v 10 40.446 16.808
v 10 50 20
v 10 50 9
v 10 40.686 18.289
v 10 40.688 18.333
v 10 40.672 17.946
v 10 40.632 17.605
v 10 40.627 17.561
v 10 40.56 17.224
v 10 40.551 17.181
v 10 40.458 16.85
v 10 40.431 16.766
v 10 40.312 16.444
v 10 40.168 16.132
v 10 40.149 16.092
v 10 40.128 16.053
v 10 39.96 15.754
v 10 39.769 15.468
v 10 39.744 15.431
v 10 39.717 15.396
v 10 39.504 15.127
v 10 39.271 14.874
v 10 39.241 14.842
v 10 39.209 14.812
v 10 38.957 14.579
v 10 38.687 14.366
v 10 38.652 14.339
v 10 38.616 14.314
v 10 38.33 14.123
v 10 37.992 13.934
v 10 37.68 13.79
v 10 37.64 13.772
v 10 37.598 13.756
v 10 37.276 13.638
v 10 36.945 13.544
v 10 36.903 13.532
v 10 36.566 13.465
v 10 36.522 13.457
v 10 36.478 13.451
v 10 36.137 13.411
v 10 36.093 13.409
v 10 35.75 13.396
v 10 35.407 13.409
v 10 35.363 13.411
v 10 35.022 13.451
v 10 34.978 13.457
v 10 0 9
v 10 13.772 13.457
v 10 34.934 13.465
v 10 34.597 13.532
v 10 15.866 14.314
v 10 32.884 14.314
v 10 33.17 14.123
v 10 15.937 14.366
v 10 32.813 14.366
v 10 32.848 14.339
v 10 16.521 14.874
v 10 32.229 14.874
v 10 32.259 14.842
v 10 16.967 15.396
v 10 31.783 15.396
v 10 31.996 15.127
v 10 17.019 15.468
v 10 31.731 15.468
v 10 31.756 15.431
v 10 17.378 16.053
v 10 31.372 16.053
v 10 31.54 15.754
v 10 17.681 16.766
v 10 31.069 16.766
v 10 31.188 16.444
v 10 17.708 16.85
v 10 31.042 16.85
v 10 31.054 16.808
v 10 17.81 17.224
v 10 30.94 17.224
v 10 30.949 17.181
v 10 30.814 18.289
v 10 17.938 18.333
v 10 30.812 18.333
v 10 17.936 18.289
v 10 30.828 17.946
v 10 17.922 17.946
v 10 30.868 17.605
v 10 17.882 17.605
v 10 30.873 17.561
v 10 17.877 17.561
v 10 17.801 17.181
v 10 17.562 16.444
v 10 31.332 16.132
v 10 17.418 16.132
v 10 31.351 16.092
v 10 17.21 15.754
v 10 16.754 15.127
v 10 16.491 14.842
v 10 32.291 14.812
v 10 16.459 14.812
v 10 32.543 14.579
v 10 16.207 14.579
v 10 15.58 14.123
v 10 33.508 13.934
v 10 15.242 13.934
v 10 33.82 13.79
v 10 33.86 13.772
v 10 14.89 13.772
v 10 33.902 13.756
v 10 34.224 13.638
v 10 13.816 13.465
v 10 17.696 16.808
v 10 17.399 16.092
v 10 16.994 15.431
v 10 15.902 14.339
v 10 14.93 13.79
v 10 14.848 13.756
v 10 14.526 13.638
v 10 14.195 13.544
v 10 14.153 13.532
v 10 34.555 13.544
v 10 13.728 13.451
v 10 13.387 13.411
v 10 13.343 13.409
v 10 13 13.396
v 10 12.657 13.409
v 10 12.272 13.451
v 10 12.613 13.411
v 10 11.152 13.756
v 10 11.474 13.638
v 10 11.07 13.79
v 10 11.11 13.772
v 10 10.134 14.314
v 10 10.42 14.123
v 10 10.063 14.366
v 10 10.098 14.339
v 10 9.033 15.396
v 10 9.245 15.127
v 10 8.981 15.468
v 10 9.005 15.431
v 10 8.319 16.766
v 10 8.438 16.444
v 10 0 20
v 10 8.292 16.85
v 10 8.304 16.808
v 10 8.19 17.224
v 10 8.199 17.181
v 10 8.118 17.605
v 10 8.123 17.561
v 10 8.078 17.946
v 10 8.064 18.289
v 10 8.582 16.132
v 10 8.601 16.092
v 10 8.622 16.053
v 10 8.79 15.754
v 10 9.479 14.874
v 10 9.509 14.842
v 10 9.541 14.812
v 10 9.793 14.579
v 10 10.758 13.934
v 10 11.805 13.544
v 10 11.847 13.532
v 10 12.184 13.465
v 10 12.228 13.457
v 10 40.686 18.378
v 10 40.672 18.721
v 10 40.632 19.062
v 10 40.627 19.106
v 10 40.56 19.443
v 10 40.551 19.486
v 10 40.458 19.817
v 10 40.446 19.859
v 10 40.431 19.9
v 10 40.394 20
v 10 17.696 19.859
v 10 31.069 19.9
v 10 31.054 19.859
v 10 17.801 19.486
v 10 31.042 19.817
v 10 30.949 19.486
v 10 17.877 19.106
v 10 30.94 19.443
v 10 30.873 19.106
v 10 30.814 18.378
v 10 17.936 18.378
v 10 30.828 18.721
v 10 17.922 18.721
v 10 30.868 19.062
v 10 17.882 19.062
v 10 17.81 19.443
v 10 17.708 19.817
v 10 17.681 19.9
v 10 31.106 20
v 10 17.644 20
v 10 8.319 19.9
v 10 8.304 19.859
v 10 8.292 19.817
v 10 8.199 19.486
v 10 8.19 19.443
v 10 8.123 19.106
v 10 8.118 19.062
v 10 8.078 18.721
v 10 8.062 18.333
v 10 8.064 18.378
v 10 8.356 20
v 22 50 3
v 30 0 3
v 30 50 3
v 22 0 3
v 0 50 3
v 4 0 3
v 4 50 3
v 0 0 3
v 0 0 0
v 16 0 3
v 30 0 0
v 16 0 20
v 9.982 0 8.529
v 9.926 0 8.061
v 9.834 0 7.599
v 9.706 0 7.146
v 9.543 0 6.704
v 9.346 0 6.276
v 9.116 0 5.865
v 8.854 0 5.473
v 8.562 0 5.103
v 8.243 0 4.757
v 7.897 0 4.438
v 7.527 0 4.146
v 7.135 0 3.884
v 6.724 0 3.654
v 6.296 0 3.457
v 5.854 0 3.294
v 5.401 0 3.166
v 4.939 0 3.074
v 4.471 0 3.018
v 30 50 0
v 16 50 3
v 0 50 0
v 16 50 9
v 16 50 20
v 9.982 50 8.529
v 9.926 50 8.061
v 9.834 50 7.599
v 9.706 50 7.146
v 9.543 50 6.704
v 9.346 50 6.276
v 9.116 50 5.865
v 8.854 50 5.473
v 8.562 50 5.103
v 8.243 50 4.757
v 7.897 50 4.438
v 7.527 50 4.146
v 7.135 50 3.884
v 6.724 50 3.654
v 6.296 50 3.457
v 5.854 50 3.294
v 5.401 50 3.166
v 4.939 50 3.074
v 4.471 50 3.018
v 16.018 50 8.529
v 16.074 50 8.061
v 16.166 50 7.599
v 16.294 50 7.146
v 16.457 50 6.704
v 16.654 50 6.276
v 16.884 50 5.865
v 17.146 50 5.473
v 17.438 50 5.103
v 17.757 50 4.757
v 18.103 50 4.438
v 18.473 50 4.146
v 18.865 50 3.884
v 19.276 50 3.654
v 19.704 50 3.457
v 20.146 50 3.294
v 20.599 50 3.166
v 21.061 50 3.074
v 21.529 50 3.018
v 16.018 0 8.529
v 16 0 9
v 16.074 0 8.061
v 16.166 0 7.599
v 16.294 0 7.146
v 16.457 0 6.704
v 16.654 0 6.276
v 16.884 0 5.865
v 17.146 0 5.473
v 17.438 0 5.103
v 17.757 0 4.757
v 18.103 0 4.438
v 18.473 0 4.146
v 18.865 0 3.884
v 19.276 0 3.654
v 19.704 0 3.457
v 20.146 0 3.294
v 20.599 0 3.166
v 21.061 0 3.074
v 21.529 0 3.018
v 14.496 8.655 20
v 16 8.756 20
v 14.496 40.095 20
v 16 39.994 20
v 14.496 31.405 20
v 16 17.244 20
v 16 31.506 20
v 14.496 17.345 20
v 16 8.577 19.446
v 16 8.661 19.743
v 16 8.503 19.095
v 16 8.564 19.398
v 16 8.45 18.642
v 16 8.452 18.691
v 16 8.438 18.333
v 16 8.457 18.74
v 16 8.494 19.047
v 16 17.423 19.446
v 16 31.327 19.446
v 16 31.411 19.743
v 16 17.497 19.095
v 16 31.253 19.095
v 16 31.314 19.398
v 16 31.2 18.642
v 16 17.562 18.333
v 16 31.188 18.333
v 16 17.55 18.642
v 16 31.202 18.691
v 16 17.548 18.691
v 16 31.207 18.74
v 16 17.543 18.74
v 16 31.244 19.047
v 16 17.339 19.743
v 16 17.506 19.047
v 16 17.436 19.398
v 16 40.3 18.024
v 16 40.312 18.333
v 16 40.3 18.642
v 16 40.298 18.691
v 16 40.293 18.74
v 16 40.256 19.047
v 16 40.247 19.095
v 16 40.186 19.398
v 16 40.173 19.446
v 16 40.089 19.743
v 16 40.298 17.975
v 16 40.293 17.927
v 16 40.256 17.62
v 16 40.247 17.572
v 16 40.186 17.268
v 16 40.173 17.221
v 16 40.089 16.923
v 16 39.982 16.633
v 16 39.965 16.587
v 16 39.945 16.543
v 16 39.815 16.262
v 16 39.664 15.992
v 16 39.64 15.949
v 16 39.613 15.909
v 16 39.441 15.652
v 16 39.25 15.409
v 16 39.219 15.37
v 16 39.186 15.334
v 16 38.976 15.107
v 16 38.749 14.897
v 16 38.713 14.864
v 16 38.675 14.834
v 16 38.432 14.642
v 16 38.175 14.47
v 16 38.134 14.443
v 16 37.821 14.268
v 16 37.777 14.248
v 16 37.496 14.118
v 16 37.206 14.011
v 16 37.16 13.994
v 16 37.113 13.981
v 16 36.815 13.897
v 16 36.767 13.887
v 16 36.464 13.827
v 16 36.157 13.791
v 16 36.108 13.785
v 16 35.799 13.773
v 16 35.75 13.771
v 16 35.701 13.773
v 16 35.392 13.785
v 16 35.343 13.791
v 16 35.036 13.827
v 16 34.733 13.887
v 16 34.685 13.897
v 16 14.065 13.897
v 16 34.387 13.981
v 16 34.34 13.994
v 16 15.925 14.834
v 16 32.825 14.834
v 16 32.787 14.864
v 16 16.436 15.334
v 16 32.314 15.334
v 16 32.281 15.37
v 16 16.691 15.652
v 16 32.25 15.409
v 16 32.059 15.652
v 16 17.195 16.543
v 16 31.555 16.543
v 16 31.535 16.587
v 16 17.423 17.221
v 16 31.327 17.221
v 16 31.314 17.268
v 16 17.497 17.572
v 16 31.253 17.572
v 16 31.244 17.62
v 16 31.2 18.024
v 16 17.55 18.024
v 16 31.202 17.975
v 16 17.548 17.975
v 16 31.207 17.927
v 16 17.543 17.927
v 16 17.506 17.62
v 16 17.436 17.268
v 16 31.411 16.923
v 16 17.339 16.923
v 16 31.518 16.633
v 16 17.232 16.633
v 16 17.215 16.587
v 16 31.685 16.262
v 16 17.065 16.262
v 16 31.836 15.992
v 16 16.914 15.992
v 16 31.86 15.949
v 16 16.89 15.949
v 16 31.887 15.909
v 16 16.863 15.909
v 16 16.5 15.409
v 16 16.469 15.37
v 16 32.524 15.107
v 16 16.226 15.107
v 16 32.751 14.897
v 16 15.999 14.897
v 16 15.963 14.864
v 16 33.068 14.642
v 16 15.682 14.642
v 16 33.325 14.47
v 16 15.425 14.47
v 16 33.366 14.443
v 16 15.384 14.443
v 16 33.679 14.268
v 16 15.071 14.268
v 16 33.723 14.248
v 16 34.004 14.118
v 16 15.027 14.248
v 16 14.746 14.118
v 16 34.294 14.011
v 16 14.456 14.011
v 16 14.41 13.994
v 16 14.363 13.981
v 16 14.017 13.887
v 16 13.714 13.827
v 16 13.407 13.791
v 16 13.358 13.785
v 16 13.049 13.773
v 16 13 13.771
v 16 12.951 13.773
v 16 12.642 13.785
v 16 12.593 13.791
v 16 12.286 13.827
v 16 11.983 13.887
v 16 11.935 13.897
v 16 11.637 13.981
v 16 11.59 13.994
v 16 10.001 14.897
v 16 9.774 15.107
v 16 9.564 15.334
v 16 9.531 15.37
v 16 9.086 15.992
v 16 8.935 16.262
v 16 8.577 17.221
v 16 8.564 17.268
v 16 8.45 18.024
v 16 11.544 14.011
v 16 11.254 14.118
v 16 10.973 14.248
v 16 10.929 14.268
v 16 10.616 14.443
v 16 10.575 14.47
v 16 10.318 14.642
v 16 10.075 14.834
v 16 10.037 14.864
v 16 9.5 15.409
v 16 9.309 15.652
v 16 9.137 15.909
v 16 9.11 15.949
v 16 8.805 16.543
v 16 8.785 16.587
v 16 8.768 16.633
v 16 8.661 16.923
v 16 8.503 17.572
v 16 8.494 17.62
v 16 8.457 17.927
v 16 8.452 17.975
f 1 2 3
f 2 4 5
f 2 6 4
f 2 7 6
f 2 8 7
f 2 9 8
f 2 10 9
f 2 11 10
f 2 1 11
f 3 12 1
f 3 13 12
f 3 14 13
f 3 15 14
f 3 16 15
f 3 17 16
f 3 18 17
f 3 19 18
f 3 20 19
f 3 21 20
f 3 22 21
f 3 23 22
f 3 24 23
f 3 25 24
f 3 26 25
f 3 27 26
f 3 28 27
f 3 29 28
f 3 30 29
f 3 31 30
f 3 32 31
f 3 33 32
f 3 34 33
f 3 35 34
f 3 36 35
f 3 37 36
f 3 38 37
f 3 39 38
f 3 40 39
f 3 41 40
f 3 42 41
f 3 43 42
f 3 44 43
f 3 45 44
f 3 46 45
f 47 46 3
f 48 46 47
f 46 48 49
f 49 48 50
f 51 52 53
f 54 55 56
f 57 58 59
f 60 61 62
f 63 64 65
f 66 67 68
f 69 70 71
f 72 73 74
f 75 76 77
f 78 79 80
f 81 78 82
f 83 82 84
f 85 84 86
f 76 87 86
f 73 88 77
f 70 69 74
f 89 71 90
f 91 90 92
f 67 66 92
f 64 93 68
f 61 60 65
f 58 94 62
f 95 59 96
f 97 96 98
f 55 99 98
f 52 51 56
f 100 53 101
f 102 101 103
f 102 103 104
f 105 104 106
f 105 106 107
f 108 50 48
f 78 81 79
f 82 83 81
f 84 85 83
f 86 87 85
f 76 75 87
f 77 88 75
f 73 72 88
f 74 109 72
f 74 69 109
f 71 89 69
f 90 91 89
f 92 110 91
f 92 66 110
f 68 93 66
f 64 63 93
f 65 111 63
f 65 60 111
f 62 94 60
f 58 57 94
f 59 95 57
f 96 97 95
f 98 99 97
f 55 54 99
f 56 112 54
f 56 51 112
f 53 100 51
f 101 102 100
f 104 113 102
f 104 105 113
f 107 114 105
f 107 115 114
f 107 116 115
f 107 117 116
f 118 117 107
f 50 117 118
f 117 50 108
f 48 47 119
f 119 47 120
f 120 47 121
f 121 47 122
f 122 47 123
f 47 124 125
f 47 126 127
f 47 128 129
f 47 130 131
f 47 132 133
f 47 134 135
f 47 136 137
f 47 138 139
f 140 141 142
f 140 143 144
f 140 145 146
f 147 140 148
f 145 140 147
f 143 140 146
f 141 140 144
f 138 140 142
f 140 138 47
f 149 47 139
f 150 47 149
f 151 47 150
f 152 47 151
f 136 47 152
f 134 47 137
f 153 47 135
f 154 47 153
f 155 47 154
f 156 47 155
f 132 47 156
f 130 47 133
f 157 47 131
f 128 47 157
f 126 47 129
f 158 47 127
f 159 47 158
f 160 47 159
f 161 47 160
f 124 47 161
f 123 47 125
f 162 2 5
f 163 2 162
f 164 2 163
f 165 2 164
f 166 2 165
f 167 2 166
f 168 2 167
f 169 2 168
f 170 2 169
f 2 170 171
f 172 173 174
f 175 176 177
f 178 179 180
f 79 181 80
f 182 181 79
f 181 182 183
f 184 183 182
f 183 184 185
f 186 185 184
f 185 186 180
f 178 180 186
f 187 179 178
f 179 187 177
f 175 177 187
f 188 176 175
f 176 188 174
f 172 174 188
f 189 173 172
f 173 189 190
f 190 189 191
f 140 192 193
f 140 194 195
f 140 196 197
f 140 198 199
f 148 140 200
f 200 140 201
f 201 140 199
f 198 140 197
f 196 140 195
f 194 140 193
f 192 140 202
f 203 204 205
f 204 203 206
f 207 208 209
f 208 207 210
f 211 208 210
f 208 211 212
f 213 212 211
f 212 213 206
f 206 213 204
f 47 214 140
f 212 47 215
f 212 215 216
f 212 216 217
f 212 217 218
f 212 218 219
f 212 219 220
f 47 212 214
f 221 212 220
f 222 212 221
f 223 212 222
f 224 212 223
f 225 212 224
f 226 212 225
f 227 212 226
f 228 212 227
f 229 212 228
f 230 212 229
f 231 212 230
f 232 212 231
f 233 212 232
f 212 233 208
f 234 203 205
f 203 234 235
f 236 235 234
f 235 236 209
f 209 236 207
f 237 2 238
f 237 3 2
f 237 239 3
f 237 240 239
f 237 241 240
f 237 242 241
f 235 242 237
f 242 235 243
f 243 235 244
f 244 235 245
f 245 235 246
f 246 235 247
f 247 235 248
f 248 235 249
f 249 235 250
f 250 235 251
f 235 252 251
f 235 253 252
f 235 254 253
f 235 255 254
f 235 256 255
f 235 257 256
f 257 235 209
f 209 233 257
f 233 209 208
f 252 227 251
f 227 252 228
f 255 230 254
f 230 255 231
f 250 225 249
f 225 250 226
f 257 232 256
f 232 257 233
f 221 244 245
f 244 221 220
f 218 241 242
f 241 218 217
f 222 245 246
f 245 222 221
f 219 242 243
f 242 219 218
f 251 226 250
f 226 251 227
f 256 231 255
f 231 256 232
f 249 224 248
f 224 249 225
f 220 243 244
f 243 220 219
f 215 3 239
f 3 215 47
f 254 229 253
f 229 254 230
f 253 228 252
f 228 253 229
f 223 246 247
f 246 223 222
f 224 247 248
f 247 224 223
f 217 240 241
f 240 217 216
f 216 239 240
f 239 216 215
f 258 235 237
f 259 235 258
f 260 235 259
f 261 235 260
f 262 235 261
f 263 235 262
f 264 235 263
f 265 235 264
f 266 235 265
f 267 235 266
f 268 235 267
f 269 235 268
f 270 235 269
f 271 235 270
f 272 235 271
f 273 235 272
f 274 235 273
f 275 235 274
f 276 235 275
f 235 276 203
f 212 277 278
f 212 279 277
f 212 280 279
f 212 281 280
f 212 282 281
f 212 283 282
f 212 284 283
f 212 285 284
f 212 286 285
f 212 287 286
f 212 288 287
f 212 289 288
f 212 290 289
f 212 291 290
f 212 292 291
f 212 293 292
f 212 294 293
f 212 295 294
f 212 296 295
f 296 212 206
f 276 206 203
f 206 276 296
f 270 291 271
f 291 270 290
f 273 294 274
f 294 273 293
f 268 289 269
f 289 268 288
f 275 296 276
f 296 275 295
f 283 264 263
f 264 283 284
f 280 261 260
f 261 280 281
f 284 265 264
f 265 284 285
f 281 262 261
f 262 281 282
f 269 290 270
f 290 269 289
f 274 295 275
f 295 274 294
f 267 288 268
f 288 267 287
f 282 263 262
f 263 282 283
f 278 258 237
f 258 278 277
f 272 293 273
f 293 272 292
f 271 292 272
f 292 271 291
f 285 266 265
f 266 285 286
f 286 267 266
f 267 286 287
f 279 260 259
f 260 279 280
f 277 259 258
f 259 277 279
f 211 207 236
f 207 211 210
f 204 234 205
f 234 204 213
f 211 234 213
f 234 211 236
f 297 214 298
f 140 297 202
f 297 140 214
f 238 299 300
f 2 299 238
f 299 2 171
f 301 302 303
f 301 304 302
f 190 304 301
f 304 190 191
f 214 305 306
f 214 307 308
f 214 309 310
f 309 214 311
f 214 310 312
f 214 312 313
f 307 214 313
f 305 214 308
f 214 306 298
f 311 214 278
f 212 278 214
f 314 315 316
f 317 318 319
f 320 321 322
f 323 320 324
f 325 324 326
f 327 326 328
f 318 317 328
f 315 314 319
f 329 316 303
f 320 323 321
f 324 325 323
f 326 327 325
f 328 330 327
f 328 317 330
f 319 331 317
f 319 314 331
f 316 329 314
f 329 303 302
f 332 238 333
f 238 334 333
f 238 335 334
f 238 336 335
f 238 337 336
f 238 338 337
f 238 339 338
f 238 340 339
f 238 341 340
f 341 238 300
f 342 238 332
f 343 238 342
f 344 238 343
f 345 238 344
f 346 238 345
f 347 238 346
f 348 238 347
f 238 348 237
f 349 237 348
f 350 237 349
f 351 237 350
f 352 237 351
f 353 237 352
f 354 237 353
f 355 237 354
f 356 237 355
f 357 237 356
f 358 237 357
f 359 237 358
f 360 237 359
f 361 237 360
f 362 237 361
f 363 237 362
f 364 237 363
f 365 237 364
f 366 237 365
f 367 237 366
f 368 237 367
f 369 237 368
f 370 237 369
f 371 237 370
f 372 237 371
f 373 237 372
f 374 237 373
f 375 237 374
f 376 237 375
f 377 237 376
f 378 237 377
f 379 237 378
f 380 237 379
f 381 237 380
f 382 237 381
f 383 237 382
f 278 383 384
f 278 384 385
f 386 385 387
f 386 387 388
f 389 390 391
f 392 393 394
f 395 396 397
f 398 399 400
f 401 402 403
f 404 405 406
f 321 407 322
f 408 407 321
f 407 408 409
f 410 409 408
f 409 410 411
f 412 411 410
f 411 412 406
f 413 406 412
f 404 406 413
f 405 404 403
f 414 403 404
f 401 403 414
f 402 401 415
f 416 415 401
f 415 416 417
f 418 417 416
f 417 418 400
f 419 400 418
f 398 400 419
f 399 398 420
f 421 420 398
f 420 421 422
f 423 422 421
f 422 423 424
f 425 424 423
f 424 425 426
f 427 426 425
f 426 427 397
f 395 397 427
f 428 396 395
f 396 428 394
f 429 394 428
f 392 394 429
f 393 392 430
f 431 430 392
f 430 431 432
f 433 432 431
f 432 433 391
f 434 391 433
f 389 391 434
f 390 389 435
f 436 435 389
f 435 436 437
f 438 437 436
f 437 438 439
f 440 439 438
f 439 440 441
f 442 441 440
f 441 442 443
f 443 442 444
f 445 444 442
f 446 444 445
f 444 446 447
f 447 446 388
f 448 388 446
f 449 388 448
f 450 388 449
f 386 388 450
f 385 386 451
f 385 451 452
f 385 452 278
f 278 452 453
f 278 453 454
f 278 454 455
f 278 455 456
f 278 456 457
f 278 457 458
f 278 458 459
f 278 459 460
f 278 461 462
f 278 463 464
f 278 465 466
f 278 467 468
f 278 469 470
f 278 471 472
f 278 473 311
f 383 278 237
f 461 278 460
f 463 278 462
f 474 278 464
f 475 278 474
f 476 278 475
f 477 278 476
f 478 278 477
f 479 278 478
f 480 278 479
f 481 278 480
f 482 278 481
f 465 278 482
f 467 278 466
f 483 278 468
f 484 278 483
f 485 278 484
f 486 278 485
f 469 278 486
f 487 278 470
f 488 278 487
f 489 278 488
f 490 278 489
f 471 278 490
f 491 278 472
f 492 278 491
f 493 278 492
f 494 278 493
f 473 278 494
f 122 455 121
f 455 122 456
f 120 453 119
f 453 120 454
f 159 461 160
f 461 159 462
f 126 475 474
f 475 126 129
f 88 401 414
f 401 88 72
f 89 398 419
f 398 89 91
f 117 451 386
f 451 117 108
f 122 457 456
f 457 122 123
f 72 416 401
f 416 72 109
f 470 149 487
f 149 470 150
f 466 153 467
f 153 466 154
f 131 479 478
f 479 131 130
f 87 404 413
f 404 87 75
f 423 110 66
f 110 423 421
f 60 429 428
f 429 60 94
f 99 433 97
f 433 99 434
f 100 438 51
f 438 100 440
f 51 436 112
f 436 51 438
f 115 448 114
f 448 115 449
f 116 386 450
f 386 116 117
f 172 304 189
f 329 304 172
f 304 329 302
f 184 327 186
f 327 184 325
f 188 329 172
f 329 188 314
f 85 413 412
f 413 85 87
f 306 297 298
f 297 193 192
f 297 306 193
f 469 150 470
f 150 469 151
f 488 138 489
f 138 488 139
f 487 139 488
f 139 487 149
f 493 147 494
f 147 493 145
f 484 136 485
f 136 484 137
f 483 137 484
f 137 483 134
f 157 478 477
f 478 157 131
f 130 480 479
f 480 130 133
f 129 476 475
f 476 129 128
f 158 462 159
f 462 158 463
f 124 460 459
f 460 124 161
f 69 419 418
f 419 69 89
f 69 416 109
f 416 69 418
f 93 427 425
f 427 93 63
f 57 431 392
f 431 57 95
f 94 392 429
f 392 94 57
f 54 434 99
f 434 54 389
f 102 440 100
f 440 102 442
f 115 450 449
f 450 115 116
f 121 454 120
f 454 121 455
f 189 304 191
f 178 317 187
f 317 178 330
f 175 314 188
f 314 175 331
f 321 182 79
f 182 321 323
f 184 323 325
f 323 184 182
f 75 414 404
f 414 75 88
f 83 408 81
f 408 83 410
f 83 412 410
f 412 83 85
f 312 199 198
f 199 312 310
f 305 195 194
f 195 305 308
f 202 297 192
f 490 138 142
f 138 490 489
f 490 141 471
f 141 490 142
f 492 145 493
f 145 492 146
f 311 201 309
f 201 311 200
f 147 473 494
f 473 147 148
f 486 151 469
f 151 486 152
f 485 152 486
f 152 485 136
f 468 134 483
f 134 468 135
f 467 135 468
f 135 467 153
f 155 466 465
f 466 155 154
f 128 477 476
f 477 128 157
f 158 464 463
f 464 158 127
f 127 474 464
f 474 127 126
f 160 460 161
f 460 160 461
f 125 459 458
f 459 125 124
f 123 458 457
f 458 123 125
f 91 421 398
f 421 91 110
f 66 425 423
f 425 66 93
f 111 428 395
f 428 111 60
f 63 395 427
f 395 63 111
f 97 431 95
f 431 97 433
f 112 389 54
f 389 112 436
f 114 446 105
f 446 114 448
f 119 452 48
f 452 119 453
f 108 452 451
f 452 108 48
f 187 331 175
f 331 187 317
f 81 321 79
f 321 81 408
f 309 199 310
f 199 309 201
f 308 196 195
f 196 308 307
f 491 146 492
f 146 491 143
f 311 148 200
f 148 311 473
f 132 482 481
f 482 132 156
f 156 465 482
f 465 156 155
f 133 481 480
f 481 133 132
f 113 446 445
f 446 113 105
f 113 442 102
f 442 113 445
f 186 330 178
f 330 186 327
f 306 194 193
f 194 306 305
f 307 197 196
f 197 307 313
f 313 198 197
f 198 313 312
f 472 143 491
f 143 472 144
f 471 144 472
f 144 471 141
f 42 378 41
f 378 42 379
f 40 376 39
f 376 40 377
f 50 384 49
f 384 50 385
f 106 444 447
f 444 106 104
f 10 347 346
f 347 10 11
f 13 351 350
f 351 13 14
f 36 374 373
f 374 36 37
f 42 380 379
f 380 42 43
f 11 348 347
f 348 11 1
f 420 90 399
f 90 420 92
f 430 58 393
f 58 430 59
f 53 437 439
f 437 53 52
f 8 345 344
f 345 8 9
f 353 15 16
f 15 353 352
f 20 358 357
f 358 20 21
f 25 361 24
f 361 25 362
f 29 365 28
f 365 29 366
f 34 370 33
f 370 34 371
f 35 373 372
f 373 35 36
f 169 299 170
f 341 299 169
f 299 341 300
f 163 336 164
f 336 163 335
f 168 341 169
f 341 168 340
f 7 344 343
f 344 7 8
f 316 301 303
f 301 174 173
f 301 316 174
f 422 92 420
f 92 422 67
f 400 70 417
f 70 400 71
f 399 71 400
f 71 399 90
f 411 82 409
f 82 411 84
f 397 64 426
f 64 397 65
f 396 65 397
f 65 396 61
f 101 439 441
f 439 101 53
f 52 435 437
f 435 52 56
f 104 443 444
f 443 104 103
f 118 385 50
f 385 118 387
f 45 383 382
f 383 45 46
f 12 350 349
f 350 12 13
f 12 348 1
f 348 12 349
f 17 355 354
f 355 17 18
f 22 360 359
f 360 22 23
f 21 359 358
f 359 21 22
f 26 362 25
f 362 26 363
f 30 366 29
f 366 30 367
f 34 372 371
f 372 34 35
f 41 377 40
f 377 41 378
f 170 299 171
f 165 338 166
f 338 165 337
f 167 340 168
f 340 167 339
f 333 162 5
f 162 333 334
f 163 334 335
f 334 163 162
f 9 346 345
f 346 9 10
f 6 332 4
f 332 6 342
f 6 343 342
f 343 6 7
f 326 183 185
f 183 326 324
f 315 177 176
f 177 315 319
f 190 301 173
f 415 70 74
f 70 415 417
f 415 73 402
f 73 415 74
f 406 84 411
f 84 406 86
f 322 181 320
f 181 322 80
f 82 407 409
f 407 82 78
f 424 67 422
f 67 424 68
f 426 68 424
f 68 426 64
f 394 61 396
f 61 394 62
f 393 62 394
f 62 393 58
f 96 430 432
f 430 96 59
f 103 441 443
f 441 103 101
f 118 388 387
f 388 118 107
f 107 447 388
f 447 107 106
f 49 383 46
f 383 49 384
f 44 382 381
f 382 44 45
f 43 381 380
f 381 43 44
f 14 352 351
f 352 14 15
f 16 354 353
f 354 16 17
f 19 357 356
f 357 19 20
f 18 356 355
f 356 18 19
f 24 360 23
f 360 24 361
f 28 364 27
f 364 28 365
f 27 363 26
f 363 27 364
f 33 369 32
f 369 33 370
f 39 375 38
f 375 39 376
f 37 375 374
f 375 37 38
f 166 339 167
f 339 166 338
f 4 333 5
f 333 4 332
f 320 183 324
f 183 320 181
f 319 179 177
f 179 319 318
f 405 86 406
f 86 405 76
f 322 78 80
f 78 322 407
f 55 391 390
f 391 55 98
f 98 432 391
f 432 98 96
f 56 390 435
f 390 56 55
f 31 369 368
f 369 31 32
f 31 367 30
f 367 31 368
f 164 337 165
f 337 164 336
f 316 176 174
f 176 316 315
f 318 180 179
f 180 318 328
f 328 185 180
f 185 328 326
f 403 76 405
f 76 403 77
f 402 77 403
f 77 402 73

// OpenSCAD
x = 30;
y = 50;
z = 3;
topOffset = 10;
supportX = 6;
supportZ = 20;

largeDiam = 10;
smallDiam = 9;


brosse();
// trou();

module brosse() {
  difference() {
    support();
    translate([topOffset -1, 8, supportZ - largeDiam/1.5 ])
      trou();
    translate([topOffset -1, y - 8 - largeDiam - largeDiam/8 , supportZ - largeDiam/1.5 ])
      trou();
  }
  
}

module trou() {
  translate([0, largeDiam/2, largeDiam/2])
    rotate(90, [0, 1, 0])
      cylinder(d1=largeDiam, d2=smallDiam, h=supportX + 2, $fn= 80);
}
  
module support() {  
  cube([x, y, z]);
  translate([topOffset, 0, 0])
    cube([supportX, y, supportZ]);
  translate([topOffset - supportX, 0, z])
    roundedInside(supportX, y);
  translate([topOffset + 2*supportX, y, z])
    rotate(180, [0, 0, 1])
      roundedInside(supportX, y);
}


module roundedInside(side, length) {
  difference() {
    cube([side, length, side]);
    translate([0, -1, side])
      rotate(-90, [1, 0, 0])
        cylinder(d=side*2, h=length + 2, $fn=80);
  }
  
}
